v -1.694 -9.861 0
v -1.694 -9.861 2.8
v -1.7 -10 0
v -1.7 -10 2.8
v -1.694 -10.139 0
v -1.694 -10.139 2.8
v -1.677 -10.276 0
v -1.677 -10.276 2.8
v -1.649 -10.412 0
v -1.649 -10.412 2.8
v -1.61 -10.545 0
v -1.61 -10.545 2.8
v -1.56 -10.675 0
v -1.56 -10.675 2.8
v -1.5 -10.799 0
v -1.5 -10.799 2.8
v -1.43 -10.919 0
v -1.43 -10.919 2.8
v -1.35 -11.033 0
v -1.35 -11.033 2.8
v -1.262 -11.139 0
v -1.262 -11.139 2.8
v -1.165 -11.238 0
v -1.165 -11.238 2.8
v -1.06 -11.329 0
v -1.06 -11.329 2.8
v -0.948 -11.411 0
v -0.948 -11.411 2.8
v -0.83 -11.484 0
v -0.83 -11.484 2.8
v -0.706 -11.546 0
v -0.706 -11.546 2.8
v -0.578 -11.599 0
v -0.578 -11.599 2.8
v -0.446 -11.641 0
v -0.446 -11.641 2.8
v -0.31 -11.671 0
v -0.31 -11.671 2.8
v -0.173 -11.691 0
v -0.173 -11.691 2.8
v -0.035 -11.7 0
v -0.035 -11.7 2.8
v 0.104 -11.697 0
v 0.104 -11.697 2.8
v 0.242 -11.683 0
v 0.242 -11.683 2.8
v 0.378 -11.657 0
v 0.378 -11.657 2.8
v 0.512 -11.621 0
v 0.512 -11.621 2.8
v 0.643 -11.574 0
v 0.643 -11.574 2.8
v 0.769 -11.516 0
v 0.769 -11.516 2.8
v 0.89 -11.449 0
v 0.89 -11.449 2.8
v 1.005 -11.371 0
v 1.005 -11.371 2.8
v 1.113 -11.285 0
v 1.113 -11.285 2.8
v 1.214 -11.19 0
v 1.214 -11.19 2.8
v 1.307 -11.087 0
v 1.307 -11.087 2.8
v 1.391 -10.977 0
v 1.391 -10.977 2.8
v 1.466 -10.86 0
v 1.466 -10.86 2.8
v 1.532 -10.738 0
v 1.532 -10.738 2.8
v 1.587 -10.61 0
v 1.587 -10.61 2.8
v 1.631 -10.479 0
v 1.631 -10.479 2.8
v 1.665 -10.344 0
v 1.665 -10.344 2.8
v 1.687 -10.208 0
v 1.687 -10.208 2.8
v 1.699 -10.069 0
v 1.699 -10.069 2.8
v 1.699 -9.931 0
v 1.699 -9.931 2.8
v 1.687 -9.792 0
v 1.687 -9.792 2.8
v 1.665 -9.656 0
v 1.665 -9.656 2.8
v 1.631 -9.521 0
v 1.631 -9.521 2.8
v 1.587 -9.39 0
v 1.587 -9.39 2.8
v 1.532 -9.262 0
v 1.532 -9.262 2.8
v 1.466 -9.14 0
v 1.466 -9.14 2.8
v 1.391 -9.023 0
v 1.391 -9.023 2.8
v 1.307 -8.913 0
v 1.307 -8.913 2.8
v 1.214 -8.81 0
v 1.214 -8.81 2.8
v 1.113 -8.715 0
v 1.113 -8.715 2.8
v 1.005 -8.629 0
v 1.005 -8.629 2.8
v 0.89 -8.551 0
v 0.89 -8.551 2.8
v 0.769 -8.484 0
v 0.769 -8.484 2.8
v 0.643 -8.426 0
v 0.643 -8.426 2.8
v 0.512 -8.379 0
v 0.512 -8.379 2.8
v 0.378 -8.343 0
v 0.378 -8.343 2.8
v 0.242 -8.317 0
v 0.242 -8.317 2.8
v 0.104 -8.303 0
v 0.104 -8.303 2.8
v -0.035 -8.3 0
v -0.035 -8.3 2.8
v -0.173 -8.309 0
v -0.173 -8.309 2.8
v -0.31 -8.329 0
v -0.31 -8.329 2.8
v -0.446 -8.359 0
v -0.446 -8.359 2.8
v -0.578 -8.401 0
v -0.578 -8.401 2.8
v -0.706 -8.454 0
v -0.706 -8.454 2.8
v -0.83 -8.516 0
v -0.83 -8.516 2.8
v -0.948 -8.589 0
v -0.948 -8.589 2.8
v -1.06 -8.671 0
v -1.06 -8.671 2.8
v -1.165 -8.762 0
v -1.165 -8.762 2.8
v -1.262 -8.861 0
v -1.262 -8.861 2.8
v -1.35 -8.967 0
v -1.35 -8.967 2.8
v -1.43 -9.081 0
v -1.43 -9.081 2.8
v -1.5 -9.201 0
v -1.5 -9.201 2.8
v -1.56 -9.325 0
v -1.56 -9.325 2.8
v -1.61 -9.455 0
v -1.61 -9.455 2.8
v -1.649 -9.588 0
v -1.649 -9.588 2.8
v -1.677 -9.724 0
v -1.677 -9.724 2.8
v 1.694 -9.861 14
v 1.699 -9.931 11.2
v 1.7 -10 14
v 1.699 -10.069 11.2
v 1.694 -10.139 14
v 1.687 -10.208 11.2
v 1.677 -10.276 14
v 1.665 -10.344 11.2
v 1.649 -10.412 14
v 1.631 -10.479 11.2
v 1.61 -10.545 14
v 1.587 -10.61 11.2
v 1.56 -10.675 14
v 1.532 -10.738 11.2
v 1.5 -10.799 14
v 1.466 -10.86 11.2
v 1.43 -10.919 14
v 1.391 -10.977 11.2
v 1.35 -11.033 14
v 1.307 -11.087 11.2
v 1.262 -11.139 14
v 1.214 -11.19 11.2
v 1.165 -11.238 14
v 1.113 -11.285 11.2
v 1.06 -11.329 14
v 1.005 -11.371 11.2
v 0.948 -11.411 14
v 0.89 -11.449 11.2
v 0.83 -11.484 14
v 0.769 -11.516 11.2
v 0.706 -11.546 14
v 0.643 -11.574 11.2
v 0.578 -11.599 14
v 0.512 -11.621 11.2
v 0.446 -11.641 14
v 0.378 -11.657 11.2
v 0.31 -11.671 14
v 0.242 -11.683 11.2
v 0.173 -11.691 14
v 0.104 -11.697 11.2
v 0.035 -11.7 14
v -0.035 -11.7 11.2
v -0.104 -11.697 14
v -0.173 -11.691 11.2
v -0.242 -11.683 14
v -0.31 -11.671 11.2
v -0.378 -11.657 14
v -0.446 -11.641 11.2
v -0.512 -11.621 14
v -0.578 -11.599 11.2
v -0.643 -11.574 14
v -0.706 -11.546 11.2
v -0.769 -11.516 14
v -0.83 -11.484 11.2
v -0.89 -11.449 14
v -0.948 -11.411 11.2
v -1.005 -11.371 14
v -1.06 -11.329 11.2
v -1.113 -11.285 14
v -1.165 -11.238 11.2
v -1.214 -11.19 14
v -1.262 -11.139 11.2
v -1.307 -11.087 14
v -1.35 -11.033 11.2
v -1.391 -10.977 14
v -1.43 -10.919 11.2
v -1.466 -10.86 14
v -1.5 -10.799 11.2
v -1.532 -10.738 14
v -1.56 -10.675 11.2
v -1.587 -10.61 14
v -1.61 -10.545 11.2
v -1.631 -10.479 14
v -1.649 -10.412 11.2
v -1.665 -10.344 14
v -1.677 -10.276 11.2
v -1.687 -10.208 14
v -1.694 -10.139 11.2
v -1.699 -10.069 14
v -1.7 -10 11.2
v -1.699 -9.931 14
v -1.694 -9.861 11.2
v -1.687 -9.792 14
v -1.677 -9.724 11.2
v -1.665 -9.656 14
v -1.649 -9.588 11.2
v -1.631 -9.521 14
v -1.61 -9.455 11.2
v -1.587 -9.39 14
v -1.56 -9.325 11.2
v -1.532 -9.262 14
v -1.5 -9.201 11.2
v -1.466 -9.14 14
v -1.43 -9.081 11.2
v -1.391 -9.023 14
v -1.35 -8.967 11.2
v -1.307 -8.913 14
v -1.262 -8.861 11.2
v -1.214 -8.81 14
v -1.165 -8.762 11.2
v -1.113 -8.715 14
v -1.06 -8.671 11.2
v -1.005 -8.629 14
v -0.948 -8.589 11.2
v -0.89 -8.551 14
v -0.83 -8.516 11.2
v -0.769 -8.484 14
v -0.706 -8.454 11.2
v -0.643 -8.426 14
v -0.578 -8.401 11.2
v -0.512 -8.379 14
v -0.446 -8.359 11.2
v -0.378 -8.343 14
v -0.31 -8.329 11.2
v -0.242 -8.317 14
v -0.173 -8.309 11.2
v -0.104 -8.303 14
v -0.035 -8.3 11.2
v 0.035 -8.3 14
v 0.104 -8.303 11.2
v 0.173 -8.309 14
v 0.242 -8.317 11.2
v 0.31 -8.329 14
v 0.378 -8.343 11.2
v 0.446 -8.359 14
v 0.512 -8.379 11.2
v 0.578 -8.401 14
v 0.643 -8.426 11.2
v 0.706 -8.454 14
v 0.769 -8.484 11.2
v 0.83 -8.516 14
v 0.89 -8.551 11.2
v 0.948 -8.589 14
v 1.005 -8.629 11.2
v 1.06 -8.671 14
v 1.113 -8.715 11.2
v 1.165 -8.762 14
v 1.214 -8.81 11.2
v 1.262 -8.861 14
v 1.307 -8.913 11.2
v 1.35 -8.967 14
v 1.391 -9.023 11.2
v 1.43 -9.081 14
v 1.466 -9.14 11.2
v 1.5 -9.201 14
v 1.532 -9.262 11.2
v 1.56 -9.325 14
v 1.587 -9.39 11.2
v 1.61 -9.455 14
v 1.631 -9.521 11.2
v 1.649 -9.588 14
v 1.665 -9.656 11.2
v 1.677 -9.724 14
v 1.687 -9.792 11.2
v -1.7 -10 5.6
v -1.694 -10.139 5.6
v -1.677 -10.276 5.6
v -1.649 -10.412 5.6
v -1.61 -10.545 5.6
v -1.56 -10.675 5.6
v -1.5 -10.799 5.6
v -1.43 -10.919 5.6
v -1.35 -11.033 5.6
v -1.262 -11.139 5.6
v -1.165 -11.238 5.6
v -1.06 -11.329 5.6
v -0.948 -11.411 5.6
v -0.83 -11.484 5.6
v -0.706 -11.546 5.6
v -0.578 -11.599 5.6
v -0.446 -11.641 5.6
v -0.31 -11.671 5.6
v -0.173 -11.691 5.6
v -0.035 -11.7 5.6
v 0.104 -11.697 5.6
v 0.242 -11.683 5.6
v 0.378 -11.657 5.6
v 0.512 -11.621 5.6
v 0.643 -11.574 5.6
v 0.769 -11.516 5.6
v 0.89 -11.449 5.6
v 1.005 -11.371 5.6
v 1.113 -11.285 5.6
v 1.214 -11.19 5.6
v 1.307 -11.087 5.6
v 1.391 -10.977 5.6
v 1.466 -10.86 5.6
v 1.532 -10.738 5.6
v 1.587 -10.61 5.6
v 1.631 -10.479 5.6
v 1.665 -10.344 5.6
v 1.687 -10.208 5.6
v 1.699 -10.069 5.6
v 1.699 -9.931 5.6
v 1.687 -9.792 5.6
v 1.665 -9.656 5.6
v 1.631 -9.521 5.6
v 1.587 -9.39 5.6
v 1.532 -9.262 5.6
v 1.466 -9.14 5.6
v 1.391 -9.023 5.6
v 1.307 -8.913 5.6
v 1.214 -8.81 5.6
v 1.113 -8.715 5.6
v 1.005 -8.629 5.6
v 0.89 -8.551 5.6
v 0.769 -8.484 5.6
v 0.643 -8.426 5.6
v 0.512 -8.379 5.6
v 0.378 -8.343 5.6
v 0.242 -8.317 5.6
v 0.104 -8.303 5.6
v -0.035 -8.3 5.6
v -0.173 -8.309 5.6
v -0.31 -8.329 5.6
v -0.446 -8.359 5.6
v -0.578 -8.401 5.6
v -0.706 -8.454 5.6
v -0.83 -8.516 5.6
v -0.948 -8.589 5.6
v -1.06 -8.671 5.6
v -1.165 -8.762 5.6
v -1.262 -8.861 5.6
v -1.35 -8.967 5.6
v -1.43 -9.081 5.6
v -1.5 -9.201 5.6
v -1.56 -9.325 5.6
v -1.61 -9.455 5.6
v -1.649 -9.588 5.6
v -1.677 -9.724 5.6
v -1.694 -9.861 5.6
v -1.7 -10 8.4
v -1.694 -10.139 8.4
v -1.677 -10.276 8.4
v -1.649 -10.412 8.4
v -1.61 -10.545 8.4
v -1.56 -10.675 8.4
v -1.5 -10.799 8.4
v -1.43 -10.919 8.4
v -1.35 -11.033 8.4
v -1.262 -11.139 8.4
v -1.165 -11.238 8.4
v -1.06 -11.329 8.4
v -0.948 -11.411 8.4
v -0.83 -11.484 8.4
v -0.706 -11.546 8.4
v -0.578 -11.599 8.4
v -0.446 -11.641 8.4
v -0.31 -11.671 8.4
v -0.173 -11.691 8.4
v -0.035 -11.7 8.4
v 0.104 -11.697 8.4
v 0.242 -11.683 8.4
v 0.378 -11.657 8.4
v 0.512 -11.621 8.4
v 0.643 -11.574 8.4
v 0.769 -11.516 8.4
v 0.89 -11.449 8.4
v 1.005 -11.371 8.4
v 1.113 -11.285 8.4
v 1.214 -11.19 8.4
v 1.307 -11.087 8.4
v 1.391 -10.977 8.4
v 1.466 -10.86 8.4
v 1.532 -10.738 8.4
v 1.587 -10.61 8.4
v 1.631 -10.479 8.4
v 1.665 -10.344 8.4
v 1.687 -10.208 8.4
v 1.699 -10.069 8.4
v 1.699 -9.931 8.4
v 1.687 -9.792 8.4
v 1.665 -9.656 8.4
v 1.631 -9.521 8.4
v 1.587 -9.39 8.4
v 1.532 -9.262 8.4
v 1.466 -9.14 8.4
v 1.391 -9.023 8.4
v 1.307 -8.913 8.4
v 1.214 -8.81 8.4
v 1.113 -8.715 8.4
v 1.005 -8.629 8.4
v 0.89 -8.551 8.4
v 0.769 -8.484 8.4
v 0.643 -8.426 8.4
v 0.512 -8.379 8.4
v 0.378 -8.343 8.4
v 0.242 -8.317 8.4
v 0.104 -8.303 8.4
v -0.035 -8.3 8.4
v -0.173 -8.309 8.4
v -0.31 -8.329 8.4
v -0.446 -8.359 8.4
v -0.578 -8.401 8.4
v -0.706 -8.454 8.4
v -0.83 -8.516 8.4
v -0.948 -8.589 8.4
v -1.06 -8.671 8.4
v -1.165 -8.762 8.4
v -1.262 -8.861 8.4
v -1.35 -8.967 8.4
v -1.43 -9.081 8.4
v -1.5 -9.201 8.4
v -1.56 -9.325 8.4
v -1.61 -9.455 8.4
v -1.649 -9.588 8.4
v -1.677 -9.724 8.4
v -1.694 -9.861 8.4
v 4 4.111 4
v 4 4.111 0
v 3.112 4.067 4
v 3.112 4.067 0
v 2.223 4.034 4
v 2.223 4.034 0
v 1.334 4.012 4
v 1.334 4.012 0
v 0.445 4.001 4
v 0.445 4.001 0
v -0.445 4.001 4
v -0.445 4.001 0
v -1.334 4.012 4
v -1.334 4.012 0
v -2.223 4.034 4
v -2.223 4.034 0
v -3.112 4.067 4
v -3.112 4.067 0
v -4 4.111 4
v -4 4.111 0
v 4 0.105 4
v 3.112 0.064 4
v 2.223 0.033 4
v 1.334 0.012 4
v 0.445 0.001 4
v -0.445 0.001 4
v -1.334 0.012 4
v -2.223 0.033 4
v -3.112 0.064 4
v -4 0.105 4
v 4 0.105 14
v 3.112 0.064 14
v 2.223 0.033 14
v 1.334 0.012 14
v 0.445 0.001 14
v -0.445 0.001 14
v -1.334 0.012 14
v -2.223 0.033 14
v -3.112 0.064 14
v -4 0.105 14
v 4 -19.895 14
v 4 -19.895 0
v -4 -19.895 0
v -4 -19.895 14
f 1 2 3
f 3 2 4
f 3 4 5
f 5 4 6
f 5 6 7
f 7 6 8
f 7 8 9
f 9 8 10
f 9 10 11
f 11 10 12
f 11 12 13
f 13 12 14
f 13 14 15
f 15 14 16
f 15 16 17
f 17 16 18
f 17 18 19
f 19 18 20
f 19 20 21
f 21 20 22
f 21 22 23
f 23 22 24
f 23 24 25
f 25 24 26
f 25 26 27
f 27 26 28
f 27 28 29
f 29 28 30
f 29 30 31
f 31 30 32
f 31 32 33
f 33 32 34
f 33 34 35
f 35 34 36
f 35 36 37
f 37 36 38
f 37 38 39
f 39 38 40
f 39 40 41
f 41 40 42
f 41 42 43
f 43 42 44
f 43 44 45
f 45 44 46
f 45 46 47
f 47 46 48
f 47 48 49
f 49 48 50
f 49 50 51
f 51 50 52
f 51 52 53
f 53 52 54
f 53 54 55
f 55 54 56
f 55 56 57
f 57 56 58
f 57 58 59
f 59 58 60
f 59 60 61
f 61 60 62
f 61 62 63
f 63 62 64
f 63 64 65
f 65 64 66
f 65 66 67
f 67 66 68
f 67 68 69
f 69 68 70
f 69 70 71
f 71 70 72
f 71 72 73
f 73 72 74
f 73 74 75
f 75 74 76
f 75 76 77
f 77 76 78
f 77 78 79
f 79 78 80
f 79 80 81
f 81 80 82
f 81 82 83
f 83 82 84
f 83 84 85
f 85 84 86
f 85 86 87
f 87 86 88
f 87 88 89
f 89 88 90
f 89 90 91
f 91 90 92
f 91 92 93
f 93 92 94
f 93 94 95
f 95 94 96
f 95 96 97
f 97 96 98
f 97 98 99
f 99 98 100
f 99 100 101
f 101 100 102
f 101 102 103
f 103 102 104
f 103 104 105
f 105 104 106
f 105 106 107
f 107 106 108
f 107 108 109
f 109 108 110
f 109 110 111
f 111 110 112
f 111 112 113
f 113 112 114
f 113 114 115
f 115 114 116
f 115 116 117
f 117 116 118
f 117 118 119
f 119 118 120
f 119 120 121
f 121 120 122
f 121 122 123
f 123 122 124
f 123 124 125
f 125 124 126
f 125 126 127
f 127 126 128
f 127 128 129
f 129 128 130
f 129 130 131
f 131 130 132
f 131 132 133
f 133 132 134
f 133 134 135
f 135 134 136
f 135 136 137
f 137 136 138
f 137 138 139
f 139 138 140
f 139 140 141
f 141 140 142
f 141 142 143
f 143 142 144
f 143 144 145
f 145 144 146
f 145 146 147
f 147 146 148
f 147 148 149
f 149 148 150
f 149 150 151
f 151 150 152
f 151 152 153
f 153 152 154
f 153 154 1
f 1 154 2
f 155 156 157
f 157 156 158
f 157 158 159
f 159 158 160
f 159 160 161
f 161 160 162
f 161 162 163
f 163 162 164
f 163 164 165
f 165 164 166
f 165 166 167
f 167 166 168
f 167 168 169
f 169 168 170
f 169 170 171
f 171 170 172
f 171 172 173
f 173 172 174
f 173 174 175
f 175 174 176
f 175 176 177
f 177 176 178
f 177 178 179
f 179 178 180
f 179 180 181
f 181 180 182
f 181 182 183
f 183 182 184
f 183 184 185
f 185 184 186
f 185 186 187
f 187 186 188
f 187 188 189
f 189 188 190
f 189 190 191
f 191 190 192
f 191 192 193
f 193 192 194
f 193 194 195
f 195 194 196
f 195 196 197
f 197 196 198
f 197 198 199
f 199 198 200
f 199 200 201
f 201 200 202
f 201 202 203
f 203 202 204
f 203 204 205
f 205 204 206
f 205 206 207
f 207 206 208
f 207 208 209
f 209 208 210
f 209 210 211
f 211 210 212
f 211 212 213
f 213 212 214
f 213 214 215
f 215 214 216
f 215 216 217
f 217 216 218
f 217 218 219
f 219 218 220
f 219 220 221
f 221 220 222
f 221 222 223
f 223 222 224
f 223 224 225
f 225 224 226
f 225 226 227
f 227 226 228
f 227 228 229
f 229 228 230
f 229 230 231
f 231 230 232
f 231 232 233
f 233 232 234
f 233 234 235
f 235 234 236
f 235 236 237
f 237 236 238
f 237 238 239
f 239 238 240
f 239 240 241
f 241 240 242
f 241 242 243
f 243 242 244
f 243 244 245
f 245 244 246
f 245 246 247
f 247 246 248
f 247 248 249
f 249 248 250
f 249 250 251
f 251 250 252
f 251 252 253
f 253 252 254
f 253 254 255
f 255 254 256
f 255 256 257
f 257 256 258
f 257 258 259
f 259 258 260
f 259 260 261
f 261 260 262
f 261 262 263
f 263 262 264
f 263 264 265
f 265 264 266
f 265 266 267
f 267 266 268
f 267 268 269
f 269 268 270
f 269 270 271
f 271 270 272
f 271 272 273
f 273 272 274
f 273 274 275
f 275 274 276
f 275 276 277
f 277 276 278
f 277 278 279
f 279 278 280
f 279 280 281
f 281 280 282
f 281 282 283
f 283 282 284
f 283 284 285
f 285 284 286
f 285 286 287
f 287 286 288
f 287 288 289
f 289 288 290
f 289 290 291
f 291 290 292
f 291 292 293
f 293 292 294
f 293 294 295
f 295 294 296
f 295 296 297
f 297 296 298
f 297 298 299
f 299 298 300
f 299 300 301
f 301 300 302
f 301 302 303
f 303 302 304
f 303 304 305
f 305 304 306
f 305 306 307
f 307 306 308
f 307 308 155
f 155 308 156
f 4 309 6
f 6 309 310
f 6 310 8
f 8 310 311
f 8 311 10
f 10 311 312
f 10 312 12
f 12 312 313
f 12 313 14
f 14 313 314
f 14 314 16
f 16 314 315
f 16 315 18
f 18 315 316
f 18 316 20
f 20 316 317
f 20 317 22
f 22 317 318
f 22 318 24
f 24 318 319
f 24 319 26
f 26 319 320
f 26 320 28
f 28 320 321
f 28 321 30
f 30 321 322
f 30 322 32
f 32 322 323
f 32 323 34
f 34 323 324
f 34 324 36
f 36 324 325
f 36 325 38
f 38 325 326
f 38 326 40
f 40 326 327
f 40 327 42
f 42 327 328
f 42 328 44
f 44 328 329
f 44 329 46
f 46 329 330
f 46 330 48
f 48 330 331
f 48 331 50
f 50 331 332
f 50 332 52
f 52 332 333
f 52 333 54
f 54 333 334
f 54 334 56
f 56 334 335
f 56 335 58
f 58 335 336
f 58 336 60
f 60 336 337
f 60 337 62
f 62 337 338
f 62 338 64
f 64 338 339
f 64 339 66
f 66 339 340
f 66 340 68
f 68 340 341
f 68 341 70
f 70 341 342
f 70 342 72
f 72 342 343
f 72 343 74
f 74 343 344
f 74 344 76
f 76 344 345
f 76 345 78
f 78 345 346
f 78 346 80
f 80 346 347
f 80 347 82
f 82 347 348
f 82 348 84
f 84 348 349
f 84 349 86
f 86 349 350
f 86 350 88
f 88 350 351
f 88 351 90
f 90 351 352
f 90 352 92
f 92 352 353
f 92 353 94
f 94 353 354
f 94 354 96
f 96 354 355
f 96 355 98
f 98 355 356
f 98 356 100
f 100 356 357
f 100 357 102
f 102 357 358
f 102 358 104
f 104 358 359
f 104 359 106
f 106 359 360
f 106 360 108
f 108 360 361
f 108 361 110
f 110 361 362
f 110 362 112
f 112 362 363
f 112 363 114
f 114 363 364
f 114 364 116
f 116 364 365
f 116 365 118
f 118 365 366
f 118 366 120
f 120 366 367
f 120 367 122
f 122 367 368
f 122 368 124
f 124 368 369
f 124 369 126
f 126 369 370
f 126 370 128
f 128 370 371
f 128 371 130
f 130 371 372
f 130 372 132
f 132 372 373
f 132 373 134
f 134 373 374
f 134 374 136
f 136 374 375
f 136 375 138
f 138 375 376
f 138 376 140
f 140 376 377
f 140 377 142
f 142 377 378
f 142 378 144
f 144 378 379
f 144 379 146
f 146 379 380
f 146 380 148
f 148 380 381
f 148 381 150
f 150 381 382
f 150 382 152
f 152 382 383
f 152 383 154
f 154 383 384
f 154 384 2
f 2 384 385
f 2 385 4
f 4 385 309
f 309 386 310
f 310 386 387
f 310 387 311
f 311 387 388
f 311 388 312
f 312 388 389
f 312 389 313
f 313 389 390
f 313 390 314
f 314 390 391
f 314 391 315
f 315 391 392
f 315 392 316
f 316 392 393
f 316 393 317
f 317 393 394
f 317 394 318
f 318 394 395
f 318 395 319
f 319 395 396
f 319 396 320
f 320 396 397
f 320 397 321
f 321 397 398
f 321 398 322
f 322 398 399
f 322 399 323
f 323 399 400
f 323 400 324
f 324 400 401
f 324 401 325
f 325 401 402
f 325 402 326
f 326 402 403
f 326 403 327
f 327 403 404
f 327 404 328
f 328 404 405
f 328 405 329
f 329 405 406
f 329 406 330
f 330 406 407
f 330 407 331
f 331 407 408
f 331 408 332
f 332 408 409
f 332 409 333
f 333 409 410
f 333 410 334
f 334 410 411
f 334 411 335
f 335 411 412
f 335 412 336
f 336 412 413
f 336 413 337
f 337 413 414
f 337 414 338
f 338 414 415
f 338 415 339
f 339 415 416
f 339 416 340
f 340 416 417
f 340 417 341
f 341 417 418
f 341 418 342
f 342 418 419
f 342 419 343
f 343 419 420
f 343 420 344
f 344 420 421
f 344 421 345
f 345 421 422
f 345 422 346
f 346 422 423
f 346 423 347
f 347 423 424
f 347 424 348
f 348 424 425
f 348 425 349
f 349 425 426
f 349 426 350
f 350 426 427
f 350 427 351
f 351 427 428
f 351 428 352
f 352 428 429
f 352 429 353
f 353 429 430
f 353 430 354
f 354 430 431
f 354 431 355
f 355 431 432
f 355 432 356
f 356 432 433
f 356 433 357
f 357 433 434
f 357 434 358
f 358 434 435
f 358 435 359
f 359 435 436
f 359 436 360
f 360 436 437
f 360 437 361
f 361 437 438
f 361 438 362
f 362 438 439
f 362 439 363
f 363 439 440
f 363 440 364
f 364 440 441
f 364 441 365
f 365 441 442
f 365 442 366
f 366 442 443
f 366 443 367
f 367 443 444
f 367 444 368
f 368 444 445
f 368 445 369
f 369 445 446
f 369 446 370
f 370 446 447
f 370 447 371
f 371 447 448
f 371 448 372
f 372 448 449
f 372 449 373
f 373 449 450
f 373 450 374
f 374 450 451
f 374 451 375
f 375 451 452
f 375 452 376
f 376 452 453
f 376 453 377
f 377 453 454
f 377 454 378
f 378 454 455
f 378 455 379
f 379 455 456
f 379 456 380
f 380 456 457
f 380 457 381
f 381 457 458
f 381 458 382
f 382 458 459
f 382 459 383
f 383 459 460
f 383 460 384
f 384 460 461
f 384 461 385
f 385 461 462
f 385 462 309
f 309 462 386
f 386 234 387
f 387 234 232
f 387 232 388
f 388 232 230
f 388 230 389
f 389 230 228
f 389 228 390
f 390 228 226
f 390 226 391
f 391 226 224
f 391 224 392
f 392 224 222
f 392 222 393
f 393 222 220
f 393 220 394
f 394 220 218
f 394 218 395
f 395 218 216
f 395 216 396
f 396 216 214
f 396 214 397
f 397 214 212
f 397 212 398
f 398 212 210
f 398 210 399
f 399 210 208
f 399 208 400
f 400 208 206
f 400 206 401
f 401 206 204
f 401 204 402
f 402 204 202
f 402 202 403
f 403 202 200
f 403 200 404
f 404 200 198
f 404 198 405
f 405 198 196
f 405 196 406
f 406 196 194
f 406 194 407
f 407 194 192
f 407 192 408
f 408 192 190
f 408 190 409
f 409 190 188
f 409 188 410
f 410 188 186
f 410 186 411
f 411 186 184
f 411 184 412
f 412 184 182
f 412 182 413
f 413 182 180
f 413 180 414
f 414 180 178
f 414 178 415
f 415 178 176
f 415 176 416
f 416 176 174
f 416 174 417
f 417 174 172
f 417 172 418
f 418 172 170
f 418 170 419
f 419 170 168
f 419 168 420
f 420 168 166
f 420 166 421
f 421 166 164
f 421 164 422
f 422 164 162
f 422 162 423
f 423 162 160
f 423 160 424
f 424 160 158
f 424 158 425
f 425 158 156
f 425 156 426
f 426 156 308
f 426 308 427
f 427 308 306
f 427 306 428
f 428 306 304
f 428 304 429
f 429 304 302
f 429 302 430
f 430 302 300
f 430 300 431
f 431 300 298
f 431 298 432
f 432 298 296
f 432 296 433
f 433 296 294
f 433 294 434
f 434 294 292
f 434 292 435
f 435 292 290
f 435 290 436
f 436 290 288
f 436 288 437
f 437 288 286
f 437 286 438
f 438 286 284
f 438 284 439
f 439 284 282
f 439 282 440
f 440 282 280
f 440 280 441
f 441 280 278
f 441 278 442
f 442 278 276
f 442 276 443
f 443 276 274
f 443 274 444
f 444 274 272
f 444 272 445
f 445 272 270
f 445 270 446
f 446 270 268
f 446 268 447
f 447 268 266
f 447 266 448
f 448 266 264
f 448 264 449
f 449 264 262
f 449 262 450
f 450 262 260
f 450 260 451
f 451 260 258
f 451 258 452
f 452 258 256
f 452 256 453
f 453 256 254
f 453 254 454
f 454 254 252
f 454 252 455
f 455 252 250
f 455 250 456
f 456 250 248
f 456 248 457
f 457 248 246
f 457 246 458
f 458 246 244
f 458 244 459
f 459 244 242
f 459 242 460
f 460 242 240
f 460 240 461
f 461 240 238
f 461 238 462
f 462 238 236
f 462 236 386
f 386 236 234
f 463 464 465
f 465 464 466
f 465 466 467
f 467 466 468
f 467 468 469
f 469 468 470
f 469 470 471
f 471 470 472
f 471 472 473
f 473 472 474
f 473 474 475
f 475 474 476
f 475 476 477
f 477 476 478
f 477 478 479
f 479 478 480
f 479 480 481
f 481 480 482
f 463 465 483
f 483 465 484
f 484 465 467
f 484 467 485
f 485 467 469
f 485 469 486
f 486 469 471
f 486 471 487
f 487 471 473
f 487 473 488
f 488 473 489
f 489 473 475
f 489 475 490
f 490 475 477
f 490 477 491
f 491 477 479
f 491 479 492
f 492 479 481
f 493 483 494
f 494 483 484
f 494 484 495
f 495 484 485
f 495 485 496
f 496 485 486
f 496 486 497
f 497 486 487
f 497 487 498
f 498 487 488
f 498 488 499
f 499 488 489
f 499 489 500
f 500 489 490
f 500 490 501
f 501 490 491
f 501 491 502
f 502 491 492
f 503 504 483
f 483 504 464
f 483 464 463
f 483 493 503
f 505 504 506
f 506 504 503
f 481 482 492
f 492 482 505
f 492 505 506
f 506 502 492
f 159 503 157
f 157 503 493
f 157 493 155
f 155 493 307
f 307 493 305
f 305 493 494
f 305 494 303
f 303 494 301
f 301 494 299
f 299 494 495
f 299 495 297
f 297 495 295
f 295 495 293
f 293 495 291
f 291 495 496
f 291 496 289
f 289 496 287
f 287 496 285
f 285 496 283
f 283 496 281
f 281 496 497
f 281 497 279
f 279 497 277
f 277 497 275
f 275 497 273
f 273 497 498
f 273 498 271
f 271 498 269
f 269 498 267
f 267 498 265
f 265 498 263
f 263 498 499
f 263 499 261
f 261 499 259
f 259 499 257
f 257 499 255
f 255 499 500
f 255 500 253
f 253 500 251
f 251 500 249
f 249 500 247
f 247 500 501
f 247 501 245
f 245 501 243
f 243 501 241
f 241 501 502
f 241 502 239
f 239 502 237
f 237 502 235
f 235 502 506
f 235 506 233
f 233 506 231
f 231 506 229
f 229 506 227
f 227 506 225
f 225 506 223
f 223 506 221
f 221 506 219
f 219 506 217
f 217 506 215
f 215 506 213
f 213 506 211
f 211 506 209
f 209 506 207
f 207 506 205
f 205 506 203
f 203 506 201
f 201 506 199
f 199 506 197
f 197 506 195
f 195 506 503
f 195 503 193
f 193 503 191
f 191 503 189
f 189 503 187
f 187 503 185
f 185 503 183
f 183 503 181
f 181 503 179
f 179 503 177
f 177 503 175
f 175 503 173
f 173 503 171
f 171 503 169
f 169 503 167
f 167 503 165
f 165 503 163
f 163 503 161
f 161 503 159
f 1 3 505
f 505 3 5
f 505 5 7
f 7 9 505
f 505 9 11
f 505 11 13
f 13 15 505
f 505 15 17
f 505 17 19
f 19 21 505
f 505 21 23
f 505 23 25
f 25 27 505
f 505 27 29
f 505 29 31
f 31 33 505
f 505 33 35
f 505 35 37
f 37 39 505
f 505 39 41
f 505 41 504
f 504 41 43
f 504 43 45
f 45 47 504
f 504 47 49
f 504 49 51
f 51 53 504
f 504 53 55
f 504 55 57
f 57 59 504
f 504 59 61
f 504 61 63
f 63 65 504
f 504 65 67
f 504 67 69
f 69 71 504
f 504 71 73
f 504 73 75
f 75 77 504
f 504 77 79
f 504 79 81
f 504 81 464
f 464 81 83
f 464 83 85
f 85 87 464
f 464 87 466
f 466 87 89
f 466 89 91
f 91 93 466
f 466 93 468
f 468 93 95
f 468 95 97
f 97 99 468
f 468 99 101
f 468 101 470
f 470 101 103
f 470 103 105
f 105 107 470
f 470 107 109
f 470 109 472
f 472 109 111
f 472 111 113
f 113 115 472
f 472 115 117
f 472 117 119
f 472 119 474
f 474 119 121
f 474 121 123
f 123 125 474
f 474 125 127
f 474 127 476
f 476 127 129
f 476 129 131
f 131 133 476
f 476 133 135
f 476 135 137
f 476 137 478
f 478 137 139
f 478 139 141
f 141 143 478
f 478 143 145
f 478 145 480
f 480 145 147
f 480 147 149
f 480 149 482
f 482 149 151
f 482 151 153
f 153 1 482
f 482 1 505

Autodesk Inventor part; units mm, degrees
ref_plane "YZ Plane" through (0, 0, 0) normal (1, 0, 0) x (0, 1, 0)
ref_plane "XZ Plane" through (0, 0, 0) normal (0, 1, 0) x (-1, 0, 0)
ref_plane "XY Plane" through (0, 0, 0) normal (0, 0, 1) x (1, 0, 0)
sketch "Sketch1" plane through (0, 0, 0) normal (0, 0, 1) x (1, 0, 0)
  arc A0 (-4, 0.1053) -> (4, 0.1053) centre (0, 76) ccw
  line L0 (4, 0.1053) -> (4, -19.8947)
  line L1 (4, -19.8947) -> (-4, -19.8947)
  line L2 (-4, -19.8947) -> (-4, 0.1053)
  arc A1 (-4, 4.1112) -> (4, 4.1112) centre (0, 76) ccw
  line L3 (4, 0.1053) -> (4, 4.1112)
  line L4 (-4, 0.1053) -> (-4, 4.1112)
  point P0 (0, 0)
  point P1 (0, -19.8947)
  point P2 (0, 0)
  dimension "d0" = 76
  dimension "d1" = 4
  dimension "d2" = 8
  dimension "d3" = 20
extrude "Extrusion1" add sketch "Sketch1" along normal blind 14 contours A0 L0 L1 L2
extrude "Extrusion2" add sketch "Sketch1" along normal blind 4 contours L4 A1 L3 A0
sketch "Sketch2" plane through (0, 0, 14) normal (0, 0, 1) x (1, 0, 0)
  circle A0 centre (0, -10) radius 1.7
  arc A1 (-4, 0.1053) -> (4, 0.1053) centre (0, 76) ccw projected
  point P0 (0, 0)
  point P1 (0, 0)
  dimension "d11" = 0
  dimension "d8" = 3.4
  dimension "d9" = 10
extrude "Extrusion3" cut sketch "Sketch2" against normal through all
properties part number "holder"
